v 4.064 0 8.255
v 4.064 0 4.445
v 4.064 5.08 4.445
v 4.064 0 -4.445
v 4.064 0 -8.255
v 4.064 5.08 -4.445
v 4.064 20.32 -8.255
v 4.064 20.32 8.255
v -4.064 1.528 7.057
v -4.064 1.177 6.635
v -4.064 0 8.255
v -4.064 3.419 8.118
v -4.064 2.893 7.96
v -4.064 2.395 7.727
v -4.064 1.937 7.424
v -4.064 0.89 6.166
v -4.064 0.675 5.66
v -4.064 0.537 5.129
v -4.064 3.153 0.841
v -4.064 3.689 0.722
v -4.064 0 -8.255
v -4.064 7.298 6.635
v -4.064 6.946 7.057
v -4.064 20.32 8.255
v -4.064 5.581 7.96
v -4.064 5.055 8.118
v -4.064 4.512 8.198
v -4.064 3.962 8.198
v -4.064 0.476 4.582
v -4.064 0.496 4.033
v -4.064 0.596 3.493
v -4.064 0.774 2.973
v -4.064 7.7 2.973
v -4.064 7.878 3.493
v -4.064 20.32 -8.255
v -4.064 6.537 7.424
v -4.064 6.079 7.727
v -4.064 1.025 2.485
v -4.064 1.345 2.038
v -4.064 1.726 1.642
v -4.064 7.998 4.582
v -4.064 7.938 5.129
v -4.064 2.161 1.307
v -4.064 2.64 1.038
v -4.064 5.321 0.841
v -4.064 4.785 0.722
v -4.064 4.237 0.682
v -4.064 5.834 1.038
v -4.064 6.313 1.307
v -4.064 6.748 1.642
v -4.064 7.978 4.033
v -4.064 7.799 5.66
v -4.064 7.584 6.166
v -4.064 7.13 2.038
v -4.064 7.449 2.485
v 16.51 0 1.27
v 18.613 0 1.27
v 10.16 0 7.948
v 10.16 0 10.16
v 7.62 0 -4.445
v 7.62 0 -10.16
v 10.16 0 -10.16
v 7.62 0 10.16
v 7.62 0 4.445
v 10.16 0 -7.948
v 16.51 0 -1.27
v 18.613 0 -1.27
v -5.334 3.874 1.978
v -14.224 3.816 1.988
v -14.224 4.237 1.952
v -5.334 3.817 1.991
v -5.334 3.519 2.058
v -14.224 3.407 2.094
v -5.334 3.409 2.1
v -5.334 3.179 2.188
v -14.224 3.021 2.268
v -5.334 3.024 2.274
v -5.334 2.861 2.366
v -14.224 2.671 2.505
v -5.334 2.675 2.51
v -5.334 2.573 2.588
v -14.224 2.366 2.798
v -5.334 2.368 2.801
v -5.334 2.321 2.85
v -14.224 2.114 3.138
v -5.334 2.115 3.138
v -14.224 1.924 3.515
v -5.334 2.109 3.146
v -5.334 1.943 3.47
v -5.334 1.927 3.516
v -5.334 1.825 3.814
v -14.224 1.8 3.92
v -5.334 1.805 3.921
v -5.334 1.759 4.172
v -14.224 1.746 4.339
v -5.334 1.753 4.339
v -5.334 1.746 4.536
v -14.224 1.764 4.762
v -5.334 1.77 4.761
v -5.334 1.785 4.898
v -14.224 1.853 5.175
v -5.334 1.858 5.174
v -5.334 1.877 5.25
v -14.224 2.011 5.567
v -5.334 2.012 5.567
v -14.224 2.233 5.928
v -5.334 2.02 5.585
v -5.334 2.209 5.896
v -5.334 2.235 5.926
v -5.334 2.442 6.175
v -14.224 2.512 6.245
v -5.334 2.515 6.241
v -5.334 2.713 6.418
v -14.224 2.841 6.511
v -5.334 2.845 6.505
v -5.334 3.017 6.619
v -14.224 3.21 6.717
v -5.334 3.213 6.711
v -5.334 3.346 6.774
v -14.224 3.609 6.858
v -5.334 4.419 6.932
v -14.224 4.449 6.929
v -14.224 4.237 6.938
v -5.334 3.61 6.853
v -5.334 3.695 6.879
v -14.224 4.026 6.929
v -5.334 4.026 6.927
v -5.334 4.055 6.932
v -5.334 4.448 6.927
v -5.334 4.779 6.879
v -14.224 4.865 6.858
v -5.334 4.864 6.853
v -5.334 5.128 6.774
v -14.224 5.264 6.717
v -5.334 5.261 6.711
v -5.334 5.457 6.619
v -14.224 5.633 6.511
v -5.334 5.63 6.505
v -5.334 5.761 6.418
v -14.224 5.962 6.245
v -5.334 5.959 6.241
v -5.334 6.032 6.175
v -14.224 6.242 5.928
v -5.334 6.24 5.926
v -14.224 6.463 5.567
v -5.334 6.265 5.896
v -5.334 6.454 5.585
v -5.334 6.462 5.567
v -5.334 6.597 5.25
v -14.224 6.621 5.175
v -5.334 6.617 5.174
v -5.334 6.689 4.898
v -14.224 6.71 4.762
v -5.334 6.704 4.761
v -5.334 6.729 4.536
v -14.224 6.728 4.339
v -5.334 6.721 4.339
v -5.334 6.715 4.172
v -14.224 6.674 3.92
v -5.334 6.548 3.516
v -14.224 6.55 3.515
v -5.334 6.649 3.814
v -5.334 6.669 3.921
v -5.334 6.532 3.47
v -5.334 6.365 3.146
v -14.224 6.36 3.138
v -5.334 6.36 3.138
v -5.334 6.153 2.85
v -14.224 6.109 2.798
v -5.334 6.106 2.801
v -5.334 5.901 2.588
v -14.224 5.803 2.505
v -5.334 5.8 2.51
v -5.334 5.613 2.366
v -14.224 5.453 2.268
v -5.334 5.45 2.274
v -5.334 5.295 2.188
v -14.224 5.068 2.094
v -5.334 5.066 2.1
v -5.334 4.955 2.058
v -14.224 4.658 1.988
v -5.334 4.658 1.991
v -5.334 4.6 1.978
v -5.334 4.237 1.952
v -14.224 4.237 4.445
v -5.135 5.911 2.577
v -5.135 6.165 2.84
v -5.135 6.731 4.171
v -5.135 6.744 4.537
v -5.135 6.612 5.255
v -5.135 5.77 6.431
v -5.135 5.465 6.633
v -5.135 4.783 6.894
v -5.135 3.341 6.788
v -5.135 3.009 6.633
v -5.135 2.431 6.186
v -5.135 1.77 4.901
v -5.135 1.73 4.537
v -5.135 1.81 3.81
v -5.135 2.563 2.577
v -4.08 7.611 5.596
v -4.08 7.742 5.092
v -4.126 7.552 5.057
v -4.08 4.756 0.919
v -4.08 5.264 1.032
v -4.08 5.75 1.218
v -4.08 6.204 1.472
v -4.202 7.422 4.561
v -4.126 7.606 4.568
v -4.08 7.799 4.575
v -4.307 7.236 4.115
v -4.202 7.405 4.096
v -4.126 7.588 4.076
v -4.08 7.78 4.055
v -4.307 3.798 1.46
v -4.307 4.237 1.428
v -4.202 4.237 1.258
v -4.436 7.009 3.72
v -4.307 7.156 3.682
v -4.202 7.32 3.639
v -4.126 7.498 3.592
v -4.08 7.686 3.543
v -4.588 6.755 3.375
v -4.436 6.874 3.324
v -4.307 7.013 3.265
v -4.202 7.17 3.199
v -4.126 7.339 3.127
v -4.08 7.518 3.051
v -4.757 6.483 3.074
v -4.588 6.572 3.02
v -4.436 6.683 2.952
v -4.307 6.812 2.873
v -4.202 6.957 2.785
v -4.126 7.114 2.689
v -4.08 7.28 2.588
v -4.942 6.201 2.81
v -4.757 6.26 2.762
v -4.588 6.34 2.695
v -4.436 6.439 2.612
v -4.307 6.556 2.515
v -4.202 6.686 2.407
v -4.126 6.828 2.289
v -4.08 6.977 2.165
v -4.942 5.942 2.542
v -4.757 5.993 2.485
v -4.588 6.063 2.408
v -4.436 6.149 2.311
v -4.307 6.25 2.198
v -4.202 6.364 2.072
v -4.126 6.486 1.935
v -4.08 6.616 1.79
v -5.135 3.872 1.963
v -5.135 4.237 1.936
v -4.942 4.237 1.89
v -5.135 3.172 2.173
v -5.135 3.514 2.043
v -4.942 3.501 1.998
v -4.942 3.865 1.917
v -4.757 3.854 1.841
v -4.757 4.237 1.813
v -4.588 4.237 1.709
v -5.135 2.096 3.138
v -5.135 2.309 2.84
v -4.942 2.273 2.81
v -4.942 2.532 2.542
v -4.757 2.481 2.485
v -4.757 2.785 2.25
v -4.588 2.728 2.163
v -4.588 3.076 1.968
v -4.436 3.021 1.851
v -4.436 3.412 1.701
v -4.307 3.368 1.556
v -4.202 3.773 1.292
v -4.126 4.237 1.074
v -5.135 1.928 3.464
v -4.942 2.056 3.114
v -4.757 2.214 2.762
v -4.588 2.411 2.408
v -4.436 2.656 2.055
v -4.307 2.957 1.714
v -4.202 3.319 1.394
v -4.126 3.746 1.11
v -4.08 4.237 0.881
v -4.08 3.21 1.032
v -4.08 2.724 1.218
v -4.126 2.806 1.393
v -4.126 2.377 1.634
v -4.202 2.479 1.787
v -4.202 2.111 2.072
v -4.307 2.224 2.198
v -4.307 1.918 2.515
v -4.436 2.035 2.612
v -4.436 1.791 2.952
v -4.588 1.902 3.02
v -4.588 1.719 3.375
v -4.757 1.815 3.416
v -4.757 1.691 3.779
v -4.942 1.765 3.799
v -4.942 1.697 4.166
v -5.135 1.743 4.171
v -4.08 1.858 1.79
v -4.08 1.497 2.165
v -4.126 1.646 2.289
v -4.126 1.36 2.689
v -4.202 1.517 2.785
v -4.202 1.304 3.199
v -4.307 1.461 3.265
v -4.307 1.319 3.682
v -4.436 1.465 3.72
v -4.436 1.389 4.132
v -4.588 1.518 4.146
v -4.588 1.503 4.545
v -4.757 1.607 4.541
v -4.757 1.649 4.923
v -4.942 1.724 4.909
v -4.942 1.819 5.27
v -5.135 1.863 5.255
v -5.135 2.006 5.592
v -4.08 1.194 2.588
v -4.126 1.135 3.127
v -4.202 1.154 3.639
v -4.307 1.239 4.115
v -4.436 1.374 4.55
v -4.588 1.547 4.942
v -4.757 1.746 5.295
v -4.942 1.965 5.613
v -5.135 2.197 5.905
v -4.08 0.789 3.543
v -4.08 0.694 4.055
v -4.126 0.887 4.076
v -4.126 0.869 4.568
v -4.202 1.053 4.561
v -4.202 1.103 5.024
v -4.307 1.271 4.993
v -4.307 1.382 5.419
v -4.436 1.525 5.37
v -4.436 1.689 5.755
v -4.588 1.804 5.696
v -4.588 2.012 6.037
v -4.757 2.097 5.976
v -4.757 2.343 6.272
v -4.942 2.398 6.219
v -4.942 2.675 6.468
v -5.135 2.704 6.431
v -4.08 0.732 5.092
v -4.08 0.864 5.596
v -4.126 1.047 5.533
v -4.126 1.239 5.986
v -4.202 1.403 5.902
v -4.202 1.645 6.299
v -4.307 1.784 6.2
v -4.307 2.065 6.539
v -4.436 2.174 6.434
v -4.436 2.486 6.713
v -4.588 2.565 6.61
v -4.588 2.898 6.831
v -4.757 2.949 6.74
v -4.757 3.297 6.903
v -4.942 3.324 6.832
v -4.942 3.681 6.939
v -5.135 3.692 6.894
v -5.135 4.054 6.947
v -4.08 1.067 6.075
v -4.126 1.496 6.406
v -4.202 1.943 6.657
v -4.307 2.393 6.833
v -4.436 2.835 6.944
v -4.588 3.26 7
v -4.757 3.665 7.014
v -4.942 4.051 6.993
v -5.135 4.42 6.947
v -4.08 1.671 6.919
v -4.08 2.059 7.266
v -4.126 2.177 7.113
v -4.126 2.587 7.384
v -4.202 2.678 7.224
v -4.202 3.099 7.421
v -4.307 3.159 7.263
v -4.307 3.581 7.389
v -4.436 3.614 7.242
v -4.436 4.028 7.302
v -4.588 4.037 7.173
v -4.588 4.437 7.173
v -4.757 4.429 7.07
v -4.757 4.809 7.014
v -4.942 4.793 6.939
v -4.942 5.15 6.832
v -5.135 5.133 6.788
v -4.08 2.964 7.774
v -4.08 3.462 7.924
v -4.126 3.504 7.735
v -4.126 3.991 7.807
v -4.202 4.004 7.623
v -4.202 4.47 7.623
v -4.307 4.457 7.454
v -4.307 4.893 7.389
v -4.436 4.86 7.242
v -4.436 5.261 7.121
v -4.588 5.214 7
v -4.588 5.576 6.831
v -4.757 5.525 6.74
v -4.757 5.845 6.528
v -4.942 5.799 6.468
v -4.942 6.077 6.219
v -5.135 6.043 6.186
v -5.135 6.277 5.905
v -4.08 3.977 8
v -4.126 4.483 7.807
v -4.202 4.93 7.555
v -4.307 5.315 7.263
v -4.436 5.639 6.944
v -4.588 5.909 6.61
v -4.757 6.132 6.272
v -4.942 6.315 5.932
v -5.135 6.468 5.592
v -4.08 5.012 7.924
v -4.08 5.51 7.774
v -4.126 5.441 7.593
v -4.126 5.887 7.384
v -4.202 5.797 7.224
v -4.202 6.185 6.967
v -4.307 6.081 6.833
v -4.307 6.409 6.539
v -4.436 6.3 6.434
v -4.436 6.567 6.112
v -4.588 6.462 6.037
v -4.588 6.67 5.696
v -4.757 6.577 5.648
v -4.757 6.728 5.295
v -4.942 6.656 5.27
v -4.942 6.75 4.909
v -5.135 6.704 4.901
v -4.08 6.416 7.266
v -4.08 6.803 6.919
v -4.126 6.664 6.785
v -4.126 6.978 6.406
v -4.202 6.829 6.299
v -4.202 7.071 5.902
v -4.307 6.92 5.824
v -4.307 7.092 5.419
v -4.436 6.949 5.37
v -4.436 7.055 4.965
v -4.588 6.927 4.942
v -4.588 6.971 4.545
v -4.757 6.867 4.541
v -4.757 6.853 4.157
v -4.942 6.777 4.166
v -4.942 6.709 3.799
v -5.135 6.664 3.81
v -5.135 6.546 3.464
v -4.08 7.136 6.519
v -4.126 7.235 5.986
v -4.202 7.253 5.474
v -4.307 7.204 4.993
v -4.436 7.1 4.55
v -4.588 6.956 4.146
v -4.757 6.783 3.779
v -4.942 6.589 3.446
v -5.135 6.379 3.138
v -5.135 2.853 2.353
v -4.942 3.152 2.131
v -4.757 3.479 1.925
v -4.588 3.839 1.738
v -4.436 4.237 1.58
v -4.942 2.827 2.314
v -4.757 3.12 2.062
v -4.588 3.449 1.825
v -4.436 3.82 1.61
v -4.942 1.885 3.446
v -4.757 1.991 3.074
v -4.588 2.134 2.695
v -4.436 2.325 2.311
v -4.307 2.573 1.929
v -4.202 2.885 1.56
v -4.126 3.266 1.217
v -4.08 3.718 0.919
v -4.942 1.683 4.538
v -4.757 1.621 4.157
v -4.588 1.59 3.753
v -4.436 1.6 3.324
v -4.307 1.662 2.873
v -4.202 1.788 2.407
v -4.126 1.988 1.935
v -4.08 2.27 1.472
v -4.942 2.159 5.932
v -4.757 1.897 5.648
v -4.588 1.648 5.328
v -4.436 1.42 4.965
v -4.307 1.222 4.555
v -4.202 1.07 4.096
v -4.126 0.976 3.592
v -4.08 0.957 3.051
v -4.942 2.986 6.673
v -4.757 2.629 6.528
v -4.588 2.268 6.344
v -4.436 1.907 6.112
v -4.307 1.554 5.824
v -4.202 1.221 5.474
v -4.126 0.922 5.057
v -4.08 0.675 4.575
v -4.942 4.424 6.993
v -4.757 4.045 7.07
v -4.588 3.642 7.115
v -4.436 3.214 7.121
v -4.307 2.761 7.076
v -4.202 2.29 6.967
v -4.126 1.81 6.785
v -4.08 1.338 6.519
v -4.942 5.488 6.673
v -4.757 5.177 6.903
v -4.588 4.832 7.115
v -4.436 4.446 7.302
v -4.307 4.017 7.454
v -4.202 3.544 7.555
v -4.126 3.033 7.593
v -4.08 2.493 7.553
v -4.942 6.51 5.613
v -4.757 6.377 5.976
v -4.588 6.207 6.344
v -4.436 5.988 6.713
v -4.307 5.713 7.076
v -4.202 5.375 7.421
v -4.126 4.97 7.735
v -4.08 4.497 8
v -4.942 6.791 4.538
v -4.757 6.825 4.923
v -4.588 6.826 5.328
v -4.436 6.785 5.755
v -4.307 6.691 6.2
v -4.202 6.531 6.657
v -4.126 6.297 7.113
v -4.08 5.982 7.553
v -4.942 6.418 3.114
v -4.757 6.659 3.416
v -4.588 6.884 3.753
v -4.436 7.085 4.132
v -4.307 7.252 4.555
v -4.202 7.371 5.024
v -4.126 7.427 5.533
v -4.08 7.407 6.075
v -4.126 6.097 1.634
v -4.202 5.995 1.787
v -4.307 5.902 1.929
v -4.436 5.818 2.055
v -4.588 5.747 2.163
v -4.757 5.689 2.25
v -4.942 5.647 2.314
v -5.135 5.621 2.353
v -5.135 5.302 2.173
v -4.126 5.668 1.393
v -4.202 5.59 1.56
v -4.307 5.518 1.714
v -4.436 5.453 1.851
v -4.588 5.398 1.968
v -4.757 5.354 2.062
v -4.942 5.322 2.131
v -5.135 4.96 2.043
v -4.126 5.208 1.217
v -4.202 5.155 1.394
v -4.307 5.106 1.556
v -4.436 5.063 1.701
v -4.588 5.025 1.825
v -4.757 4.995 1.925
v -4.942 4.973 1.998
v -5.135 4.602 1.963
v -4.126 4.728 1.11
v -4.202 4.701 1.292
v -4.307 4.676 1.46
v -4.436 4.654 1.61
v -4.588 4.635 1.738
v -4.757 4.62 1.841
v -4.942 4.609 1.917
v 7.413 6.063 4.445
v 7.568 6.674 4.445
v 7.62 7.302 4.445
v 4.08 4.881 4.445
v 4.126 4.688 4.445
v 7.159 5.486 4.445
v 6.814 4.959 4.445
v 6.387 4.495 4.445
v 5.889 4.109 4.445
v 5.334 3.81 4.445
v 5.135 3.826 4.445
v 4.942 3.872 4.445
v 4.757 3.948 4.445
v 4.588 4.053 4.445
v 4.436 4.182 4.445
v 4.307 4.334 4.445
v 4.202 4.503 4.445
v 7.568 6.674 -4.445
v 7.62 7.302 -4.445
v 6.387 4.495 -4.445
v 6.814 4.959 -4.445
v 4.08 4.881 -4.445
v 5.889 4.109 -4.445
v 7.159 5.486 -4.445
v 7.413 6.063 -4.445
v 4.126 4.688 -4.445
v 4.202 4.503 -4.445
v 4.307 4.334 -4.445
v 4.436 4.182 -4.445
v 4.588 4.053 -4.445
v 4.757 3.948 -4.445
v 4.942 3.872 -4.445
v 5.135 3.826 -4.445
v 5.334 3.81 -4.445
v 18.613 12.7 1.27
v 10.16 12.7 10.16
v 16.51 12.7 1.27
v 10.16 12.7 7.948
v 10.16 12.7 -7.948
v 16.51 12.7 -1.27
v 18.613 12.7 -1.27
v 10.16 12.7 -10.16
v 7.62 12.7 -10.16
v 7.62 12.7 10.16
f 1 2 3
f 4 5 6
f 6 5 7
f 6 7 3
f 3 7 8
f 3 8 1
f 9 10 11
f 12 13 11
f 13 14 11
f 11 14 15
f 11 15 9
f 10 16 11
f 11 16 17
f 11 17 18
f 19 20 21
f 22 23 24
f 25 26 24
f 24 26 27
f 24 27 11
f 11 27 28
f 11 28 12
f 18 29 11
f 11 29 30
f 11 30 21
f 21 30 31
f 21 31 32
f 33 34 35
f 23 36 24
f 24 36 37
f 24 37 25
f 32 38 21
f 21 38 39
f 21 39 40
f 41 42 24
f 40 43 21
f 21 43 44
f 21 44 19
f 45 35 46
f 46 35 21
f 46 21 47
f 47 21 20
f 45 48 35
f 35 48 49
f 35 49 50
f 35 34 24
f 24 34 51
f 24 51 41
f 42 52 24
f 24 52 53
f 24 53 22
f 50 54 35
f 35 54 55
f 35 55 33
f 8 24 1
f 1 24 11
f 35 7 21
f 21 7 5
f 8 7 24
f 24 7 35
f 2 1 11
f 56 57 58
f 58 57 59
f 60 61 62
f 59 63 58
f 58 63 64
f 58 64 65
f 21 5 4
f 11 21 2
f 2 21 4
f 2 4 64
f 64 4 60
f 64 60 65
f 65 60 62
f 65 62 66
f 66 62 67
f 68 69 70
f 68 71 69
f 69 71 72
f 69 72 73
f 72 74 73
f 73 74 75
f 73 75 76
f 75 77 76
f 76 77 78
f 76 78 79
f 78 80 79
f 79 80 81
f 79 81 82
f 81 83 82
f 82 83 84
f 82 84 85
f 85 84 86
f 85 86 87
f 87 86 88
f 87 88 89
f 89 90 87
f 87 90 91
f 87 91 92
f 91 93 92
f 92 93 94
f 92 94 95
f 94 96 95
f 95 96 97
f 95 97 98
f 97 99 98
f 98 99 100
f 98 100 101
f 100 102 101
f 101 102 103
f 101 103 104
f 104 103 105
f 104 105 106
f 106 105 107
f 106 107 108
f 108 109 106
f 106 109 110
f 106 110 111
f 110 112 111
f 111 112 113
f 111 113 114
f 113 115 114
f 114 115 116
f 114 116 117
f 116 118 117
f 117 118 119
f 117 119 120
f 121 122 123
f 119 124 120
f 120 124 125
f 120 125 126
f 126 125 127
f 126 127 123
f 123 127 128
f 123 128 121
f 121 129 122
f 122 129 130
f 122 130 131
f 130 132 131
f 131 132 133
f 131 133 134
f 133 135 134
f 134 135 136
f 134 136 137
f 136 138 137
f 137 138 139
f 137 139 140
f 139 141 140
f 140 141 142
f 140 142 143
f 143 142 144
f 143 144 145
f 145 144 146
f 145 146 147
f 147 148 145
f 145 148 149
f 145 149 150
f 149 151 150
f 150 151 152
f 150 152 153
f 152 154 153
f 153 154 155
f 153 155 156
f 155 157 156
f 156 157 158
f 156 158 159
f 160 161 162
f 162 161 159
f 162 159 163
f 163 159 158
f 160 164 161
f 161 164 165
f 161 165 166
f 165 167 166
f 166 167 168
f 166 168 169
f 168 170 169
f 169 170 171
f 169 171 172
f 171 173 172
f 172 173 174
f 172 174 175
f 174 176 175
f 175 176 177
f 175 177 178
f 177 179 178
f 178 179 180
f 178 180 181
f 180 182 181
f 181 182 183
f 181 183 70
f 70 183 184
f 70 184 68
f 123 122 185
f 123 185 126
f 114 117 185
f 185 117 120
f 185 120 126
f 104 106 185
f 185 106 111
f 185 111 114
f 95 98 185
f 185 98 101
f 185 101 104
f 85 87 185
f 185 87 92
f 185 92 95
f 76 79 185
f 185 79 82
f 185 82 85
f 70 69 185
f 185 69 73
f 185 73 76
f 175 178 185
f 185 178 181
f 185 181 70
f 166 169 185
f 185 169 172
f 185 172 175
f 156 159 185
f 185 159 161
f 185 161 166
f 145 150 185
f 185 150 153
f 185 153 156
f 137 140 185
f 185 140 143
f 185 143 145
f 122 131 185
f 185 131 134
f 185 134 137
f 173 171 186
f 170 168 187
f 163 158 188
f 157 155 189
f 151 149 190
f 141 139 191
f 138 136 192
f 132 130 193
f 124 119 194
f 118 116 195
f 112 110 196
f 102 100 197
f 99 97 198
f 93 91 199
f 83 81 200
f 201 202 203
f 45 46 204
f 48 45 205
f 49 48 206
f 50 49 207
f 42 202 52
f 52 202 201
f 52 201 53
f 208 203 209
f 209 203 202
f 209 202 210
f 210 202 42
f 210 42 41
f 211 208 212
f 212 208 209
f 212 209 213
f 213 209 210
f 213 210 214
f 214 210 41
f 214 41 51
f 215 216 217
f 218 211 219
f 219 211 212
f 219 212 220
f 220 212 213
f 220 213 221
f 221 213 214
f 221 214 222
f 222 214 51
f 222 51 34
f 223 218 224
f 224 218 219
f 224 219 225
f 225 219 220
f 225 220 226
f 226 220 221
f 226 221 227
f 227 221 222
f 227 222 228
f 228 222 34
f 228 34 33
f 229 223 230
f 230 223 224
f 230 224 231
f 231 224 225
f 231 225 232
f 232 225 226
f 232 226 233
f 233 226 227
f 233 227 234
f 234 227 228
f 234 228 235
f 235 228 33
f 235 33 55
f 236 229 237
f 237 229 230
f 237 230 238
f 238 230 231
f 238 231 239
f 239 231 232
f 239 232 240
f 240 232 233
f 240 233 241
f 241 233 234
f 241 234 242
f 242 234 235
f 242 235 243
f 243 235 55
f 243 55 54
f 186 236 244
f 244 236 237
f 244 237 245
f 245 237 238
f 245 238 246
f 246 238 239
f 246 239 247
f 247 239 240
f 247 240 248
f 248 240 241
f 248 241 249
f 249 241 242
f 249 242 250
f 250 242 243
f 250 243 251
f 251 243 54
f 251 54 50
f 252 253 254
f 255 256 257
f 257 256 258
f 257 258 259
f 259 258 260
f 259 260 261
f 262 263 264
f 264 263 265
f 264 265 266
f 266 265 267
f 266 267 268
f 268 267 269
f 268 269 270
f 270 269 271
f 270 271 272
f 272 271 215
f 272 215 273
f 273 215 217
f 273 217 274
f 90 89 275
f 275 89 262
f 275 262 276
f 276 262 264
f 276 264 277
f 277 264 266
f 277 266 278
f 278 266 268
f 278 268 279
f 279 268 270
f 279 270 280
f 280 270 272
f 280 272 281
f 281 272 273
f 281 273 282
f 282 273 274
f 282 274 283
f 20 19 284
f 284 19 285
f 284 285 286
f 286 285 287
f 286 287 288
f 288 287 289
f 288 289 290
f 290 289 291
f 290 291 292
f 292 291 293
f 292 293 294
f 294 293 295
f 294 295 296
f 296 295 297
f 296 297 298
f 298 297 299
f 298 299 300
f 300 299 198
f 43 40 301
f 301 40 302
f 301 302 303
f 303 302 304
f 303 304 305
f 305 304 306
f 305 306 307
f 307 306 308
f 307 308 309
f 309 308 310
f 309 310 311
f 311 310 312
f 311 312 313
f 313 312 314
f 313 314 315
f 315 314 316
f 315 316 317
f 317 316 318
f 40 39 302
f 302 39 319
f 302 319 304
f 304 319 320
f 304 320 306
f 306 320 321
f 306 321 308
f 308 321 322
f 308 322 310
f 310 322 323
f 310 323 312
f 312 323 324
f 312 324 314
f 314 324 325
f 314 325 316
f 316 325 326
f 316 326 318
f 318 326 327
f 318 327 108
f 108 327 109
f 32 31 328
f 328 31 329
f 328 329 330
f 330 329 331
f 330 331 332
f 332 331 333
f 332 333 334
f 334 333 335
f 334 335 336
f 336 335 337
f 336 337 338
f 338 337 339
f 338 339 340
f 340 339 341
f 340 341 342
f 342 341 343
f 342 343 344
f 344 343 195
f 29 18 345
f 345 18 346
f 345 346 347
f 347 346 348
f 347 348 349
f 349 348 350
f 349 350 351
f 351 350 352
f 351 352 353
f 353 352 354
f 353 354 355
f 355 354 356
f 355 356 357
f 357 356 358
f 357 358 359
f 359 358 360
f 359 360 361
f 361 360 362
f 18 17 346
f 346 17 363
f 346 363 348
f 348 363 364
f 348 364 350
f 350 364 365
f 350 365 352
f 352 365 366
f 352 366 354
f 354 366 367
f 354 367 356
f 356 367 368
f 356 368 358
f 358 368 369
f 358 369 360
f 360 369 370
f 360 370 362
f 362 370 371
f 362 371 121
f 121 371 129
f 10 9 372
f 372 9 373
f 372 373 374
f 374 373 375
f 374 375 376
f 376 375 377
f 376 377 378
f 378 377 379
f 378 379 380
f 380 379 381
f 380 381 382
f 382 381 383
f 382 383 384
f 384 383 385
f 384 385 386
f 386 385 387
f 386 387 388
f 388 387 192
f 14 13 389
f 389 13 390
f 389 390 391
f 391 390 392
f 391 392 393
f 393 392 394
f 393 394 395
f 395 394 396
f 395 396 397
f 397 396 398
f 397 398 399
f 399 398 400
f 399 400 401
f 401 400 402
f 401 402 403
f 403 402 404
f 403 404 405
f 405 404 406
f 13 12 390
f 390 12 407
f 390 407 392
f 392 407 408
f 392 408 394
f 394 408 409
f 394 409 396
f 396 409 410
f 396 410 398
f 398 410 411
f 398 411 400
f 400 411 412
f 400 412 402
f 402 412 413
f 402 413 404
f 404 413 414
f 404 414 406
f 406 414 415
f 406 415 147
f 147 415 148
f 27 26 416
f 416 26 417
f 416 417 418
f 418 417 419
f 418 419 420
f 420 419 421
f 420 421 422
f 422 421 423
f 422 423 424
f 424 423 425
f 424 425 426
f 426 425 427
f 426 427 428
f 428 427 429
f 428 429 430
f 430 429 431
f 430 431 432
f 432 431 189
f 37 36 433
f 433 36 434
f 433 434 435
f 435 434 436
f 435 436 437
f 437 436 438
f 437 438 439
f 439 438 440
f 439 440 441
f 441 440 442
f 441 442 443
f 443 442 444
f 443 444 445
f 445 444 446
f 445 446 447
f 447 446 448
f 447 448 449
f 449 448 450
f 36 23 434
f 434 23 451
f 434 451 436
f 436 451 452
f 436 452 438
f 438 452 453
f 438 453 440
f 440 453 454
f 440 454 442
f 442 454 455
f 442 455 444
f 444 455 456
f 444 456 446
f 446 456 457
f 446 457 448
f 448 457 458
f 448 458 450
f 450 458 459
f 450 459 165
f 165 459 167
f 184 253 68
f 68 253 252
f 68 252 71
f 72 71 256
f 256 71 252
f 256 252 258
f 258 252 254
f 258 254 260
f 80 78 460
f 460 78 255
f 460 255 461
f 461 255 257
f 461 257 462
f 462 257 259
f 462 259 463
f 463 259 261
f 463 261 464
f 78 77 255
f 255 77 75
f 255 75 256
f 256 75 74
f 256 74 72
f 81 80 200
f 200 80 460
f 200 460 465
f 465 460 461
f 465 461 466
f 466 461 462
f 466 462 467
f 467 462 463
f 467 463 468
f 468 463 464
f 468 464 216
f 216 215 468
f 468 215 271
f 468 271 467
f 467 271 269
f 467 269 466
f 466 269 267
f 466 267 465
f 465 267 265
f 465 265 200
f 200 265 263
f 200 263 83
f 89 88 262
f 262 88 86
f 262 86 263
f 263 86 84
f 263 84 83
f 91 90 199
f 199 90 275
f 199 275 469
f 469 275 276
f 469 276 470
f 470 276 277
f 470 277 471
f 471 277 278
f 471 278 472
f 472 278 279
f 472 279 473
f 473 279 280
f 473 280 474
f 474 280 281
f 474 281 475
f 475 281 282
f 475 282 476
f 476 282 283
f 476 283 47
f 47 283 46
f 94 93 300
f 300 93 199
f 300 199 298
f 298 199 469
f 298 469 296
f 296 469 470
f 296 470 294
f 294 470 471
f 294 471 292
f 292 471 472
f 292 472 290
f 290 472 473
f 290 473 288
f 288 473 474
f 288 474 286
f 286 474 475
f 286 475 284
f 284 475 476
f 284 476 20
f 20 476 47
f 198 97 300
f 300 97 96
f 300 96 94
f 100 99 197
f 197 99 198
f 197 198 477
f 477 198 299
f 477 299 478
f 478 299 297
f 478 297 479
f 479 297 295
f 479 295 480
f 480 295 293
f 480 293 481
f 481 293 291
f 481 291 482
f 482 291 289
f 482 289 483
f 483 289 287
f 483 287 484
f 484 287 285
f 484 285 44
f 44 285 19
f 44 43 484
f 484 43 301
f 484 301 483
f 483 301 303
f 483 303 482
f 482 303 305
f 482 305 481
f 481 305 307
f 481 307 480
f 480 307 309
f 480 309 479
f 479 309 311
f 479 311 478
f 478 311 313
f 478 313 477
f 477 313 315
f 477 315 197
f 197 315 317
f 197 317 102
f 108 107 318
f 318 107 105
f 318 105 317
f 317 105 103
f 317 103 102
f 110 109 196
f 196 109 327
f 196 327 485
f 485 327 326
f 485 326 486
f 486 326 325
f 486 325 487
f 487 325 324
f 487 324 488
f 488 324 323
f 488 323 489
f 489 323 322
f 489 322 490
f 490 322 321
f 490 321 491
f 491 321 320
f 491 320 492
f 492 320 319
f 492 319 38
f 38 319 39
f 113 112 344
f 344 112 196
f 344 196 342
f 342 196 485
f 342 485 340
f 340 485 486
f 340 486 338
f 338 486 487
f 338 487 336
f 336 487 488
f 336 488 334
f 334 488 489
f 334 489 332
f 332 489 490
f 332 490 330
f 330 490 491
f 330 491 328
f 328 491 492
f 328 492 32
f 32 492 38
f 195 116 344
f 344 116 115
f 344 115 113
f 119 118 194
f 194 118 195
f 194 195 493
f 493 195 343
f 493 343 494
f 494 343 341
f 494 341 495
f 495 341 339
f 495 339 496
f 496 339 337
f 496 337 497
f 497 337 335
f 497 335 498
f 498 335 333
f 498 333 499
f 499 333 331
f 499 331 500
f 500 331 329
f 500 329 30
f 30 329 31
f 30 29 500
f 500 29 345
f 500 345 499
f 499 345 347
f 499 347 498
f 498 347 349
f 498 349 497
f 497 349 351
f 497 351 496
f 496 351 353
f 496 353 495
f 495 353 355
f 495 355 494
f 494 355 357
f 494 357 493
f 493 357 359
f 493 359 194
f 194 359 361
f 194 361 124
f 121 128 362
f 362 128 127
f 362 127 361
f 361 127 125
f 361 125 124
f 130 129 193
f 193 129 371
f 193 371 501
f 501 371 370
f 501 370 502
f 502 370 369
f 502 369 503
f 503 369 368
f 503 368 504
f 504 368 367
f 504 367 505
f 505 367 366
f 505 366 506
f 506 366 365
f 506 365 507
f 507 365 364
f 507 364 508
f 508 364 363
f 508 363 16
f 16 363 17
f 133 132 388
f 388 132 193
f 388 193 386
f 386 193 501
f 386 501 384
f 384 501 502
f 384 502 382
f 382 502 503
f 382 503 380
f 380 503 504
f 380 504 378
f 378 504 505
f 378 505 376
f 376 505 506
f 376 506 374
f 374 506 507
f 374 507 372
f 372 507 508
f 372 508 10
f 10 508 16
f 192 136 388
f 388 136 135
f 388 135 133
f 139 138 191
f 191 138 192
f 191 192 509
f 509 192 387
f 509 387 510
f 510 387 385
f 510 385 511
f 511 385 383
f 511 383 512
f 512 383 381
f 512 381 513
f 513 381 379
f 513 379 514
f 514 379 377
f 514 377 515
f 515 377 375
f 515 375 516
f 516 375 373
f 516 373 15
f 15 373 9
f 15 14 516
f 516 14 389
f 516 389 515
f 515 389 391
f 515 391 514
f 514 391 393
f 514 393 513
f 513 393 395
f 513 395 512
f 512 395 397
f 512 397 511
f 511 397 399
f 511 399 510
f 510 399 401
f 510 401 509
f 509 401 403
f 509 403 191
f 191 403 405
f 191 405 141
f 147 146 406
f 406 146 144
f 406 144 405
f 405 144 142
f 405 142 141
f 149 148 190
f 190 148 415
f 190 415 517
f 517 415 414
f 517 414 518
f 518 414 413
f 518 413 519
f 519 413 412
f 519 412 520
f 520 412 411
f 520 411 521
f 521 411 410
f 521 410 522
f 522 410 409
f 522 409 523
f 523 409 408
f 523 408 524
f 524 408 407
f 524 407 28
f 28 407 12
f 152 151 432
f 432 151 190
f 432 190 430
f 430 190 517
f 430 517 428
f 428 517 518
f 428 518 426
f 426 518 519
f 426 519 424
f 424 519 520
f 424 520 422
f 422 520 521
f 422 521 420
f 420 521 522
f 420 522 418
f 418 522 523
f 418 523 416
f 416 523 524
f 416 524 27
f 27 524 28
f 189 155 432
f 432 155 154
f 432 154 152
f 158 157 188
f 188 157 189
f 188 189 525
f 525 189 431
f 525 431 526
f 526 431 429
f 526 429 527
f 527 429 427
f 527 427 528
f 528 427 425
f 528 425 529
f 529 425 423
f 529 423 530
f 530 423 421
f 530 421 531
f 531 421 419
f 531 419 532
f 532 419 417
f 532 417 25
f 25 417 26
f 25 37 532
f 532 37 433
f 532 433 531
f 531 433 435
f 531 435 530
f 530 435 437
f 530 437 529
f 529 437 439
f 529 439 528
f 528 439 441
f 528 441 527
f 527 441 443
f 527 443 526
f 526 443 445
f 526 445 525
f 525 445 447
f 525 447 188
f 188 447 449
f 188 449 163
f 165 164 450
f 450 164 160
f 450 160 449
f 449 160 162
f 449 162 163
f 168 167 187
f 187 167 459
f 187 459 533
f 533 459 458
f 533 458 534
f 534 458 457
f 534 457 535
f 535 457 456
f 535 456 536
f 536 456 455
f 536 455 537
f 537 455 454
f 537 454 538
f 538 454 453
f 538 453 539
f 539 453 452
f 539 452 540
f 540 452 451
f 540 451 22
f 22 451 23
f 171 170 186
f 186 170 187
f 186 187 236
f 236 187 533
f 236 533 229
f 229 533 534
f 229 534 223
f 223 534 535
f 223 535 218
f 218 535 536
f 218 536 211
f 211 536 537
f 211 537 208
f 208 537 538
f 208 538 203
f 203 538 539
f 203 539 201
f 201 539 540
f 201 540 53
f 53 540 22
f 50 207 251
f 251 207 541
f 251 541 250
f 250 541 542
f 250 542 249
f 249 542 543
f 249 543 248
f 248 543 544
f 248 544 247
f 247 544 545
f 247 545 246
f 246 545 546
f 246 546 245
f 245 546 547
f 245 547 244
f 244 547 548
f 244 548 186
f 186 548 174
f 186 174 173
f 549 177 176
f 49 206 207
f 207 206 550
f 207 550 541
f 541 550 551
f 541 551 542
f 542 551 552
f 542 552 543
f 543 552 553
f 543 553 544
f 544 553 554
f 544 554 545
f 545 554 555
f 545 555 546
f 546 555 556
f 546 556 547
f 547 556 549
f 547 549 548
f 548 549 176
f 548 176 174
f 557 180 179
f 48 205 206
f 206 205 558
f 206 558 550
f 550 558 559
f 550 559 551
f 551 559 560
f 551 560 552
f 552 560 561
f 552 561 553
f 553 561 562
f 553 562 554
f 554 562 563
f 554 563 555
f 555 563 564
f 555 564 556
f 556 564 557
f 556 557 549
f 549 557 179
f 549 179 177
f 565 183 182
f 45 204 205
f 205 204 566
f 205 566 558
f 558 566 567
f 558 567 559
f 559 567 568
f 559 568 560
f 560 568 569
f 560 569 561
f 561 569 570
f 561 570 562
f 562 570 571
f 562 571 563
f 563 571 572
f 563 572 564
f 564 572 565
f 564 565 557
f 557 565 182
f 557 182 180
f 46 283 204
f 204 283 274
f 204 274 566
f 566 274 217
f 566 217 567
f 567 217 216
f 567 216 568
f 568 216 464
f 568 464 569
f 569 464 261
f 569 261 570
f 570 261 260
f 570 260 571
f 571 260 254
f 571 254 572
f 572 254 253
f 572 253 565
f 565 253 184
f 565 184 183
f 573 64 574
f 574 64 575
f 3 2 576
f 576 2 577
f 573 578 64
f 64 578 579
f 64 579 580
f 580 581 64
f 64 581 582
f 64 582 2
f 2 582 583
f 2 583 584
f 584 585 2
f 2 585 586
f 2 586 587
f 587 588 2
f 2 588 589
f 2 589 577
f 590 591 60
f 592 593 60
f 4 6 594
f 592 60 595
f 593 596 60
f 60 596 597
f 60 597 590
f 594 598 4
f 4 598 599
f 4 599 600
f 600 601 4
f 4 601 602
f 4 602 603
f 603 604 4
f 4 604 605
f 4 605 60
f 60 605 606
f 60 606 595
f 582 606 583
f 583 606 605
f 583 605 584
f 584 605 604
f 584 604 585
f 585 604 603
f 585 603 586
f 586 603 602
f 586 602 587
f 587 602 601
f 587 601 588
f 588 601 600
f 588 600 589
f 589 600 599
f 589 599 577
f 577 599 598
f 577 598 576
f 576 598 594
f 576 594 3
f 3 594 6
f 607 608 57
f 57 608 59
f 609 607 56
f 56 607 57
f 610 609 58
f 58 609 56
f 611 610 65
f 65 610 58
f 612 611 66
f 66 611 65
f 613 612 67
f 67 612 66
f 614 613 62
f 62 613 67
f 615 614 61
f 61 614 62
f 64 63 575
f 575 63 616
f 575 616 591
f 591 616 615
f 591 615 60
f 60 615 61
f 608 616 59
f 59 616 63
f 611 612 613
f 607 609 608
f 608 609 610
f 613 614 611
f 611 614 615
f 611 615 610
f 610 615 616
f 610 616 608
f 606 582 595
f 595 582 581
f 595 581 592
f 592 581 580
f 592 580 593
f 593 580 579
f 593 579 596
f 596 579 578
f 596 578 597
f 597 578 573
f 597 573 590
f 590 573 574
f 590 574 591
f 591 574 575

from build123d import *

# Parameters (mm, degrees)
SKETCH1_W           = 8.128
SKETCH1_H           = 16.51
BOSS_EXTRUDE1_DEPTH = 20.32
SKETCH2_R           = 2.493155922
BOSS_EXTRUDE2_DEPTH = 10.16
FILLET2_R           = 1.27
SKETCH3_W           = 8.89
SKETCH3_H           = 3.81
BOSS_EXTRUDE3_DEPTH = 3.556
FILLET3_R           = 1.27
BOSS_EXTRUDE4_DEPTH = 12.7
FILLET4_R           = 3.81


with BuildPart() as part:
    # Sketch1 → Boss-Extrude1 (new body)
    with BuildSketch(Plane(origin=(0, 0, 0), x_dir=(1, 0, 0), z_dir=(0, 1, 0))):
        Rectangle(SKETCH1_W, SKETCH1_H)
    extrude(amount=BOSS_EXTRUDE1_DEPTH)

    # Sketch2 → Boss-Extrude2 (add)
    with BuildSketch(Plane.ZY.offset(4.064)):
        with Locations(Location((4.445, 4.237080477, 0), (0, 0, 180))):
            Circle(SKETCH2_R)
    extrude(amount=BOSS_EXTRUDE2_DEPTH)

    # Fillet2
    fillet2_edges = [part.edges().sort_by_distance(p)[0] for p in [
        (-4.064, 4.237080477, 6.938155922),
    ]]
    fillet(fillet2_edges, radius=FILLET2_R)

    # Sketch3 → Boss-Extrude3 (add)
    with BuildSketch(Plane(origin=(4.064, 0, 0), x_dir=(0, 0, -1), z_dir=(1, 0, 0))):
        with Locations((0, 1.905)):
            Rectangle(SKETCH3_W, SKETCH3_H)
    extrude(amount=BOSS_EXTRUDE3_DEPTH)

    # Fillet3
    fillet3_edges = [part.edges().sort_by_distance(p)[0] for p in [
        (4.064, 3.81, 0),
    ]]
    fillet(fillet3_edges, radius=FILLET3_R)

    # Sketch5 → Boss-Extrude4 (add)
    with BuildSketch(Plane(origin=(0, 0, 0), x_dir=(-1, 0, 0), z_dir=(0, -1, 0))):
        Polygon((-10.16, -10.16), (-7.62, -10.16), (-7.62, 10.16), (-10.16, 10.16), (-18.612950502, 1.27), (-16.51, 1.27), (-10.16, 7.948319006), (-10.16, -7.948319006), (-16.51, -1.27), (-18.612950502, -1.27), align=None)
    extrude(amount=-BOSS_EXTRUDE4_DEPTH)

    # Fillet4
    # the kernel refuses this fillet: 3.81 mm, written as the material it adds along each edge
    with BuildSketch(Plane(origin=(7.62, 3.81, 4.445), x_dir=(0, 1, 0), z_dir=(0, 0, -1))) as fillet4_piece_1:
        with BuildLine():
            CenterArc((3.49192268, -3.81), FILLET4_R, 90, 66.421821522)
            Line((0, -2.286), (0, 0))
            Line((0, 0), (3.49192268, 0))
        make_face()
    extrude(amount=8.89)


solid = part.part
